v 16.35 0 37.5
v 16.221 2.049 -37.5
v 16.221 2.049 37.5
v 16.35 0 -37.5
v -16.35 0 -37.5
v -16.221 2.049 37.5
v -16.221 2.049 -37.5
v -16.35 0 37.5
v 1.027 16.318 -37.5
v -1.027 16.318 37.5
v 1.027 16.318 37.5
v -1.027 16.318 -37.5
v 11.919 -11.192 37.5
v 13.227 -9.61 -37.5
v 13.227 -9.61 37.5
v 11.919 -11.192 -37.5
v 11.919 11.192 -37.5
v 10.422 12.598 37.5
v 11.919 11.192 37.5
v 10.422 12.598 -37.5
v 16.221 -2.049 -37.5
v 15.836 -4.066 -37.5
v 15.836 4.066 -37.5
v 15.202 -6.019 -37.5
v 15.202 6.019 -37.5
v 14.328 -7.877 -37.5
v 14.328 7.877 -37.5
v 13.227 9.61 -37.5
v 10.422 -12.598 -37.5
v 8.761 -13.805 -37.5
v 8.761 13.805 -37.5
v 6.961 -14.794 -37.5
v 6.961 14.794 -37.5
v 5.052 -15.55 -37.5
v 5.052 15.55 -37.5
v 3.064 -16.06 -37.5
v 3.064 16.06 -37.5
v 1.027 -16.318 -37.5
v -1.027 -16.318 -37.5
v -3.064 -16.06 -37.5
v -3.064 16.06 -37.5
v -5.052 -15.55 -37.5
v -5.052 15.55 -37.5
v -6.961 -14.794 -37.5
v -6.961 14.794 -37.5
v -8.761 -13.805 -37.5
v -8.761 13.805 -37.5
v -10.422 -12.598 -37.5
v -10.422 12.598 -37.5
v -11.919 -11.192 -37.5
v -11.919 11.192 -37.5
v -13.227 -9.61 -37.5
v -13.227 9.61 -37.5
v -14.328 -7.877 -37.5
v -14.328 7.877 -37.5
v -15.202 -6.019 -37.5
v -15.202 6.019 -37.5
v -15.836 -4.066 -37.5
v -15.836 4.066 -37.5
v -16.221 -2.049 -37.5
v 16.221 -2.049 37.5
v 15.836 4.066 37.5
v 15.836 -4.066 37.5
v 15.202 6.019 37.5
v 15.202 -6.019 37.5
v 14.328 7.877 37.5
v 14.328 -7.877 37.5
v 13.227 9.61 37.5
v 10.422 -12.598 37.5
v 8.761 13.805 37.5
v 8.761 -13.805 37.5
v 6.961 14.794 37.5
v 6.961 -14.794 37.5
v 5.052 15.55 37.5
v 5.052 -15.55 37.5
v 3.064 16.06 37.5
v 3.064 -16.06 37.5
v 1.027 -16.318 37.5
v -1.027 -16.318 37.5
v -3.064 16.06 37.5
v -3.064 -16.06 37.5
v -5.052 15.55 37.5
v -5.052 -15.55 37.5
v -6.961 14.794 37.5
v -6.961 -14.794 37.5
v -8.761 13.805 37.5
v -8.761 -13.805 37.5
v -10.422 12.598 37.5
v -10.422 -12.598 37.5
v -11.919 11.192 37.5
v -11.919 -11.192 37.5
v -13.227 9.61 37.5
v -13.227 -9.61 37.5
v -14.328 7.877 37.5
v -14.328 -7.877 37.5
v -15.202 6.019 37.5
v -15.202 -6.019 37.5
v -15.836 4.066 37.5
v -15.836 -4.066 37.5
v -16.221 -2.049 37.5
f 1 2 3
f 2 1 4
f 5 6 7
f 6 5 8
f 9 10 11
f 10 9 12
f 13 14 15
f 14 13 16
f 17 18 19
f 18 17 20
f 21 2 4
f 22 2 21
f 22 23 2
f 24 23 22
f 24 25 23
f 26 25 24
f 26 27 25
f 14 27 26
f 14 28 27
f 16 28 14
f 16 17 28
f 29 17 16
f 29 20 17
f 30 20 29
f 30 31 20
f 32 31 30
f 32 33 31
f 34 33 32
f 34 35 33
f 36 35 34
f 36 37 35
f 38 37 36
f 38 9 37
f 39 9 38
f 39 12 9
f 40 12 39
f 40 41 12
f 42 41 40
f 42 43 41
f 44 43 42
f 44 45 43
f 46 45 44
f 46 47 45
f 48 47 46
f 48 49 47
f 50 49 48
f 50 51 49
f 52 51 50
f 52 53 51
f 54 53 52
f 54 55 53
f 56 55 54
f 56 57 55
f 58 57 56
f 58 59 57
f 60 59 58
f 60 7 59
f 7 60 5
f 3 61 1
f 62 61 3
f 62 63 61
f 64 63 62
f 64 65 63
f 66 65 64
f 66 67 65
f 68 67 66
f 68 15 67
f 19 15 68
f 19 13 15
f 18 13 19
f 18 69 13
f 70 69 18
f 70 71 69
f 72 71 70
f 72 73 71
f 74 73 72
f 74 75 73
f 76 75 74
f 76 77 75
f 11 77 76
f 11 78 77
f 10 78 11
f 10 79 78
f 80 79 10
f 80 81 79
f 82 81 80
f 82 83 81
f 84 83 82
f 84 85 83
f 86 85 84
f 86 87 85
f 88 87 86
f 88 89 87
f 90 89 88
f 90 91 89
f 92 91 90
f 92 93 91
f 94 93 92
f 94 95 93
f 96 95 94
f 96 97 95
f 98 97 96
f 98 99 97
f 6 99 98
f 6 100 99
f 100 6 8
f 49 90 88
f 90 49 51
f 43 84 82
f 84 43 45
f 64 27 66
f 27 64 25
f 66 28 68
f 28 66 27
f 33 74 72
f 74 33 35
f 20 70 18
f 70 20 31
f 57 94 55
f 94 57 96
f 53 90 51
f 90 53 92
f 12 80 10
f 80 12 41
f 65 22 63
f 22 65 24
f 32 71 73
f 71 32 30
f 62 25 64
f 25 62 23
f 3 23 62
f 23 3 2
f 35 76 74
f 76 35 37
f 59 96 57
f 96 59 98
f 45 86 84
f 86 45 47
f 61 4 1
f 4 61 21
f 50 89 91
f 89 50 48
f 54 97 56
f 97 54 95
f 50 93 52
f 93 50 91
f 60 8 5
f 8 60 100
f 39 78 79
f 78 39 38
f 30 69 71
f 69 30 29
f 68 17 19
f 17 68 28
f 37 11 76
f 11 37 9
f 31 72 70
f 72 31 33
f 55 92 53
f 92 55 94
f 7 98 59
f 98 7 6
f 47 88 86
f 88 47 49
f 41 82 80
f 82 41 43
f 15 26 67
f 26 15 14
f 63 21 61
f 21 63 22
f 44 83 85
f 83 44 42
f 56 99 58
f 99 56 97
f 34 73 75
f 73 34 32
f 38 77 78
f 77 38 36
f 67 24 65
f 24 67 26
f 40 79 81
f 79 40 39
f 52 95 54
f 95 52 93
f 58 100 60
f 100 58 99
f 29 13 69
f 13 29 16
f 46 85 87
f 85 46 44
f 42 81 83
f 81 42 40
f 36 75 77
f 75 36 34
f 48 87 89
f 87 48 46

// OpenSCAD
$fn = 50;


difference() {
	union() {
		translate(v = [0, 0, -37.5000000000]) {
			cylinder(h = 75, r = 16.3500000000);
		}
	}
	union() {
		translate(v = [0, 0, -100.0000000000]) {
			cylinder(h = 200, r = 0);
		}
	}
}
